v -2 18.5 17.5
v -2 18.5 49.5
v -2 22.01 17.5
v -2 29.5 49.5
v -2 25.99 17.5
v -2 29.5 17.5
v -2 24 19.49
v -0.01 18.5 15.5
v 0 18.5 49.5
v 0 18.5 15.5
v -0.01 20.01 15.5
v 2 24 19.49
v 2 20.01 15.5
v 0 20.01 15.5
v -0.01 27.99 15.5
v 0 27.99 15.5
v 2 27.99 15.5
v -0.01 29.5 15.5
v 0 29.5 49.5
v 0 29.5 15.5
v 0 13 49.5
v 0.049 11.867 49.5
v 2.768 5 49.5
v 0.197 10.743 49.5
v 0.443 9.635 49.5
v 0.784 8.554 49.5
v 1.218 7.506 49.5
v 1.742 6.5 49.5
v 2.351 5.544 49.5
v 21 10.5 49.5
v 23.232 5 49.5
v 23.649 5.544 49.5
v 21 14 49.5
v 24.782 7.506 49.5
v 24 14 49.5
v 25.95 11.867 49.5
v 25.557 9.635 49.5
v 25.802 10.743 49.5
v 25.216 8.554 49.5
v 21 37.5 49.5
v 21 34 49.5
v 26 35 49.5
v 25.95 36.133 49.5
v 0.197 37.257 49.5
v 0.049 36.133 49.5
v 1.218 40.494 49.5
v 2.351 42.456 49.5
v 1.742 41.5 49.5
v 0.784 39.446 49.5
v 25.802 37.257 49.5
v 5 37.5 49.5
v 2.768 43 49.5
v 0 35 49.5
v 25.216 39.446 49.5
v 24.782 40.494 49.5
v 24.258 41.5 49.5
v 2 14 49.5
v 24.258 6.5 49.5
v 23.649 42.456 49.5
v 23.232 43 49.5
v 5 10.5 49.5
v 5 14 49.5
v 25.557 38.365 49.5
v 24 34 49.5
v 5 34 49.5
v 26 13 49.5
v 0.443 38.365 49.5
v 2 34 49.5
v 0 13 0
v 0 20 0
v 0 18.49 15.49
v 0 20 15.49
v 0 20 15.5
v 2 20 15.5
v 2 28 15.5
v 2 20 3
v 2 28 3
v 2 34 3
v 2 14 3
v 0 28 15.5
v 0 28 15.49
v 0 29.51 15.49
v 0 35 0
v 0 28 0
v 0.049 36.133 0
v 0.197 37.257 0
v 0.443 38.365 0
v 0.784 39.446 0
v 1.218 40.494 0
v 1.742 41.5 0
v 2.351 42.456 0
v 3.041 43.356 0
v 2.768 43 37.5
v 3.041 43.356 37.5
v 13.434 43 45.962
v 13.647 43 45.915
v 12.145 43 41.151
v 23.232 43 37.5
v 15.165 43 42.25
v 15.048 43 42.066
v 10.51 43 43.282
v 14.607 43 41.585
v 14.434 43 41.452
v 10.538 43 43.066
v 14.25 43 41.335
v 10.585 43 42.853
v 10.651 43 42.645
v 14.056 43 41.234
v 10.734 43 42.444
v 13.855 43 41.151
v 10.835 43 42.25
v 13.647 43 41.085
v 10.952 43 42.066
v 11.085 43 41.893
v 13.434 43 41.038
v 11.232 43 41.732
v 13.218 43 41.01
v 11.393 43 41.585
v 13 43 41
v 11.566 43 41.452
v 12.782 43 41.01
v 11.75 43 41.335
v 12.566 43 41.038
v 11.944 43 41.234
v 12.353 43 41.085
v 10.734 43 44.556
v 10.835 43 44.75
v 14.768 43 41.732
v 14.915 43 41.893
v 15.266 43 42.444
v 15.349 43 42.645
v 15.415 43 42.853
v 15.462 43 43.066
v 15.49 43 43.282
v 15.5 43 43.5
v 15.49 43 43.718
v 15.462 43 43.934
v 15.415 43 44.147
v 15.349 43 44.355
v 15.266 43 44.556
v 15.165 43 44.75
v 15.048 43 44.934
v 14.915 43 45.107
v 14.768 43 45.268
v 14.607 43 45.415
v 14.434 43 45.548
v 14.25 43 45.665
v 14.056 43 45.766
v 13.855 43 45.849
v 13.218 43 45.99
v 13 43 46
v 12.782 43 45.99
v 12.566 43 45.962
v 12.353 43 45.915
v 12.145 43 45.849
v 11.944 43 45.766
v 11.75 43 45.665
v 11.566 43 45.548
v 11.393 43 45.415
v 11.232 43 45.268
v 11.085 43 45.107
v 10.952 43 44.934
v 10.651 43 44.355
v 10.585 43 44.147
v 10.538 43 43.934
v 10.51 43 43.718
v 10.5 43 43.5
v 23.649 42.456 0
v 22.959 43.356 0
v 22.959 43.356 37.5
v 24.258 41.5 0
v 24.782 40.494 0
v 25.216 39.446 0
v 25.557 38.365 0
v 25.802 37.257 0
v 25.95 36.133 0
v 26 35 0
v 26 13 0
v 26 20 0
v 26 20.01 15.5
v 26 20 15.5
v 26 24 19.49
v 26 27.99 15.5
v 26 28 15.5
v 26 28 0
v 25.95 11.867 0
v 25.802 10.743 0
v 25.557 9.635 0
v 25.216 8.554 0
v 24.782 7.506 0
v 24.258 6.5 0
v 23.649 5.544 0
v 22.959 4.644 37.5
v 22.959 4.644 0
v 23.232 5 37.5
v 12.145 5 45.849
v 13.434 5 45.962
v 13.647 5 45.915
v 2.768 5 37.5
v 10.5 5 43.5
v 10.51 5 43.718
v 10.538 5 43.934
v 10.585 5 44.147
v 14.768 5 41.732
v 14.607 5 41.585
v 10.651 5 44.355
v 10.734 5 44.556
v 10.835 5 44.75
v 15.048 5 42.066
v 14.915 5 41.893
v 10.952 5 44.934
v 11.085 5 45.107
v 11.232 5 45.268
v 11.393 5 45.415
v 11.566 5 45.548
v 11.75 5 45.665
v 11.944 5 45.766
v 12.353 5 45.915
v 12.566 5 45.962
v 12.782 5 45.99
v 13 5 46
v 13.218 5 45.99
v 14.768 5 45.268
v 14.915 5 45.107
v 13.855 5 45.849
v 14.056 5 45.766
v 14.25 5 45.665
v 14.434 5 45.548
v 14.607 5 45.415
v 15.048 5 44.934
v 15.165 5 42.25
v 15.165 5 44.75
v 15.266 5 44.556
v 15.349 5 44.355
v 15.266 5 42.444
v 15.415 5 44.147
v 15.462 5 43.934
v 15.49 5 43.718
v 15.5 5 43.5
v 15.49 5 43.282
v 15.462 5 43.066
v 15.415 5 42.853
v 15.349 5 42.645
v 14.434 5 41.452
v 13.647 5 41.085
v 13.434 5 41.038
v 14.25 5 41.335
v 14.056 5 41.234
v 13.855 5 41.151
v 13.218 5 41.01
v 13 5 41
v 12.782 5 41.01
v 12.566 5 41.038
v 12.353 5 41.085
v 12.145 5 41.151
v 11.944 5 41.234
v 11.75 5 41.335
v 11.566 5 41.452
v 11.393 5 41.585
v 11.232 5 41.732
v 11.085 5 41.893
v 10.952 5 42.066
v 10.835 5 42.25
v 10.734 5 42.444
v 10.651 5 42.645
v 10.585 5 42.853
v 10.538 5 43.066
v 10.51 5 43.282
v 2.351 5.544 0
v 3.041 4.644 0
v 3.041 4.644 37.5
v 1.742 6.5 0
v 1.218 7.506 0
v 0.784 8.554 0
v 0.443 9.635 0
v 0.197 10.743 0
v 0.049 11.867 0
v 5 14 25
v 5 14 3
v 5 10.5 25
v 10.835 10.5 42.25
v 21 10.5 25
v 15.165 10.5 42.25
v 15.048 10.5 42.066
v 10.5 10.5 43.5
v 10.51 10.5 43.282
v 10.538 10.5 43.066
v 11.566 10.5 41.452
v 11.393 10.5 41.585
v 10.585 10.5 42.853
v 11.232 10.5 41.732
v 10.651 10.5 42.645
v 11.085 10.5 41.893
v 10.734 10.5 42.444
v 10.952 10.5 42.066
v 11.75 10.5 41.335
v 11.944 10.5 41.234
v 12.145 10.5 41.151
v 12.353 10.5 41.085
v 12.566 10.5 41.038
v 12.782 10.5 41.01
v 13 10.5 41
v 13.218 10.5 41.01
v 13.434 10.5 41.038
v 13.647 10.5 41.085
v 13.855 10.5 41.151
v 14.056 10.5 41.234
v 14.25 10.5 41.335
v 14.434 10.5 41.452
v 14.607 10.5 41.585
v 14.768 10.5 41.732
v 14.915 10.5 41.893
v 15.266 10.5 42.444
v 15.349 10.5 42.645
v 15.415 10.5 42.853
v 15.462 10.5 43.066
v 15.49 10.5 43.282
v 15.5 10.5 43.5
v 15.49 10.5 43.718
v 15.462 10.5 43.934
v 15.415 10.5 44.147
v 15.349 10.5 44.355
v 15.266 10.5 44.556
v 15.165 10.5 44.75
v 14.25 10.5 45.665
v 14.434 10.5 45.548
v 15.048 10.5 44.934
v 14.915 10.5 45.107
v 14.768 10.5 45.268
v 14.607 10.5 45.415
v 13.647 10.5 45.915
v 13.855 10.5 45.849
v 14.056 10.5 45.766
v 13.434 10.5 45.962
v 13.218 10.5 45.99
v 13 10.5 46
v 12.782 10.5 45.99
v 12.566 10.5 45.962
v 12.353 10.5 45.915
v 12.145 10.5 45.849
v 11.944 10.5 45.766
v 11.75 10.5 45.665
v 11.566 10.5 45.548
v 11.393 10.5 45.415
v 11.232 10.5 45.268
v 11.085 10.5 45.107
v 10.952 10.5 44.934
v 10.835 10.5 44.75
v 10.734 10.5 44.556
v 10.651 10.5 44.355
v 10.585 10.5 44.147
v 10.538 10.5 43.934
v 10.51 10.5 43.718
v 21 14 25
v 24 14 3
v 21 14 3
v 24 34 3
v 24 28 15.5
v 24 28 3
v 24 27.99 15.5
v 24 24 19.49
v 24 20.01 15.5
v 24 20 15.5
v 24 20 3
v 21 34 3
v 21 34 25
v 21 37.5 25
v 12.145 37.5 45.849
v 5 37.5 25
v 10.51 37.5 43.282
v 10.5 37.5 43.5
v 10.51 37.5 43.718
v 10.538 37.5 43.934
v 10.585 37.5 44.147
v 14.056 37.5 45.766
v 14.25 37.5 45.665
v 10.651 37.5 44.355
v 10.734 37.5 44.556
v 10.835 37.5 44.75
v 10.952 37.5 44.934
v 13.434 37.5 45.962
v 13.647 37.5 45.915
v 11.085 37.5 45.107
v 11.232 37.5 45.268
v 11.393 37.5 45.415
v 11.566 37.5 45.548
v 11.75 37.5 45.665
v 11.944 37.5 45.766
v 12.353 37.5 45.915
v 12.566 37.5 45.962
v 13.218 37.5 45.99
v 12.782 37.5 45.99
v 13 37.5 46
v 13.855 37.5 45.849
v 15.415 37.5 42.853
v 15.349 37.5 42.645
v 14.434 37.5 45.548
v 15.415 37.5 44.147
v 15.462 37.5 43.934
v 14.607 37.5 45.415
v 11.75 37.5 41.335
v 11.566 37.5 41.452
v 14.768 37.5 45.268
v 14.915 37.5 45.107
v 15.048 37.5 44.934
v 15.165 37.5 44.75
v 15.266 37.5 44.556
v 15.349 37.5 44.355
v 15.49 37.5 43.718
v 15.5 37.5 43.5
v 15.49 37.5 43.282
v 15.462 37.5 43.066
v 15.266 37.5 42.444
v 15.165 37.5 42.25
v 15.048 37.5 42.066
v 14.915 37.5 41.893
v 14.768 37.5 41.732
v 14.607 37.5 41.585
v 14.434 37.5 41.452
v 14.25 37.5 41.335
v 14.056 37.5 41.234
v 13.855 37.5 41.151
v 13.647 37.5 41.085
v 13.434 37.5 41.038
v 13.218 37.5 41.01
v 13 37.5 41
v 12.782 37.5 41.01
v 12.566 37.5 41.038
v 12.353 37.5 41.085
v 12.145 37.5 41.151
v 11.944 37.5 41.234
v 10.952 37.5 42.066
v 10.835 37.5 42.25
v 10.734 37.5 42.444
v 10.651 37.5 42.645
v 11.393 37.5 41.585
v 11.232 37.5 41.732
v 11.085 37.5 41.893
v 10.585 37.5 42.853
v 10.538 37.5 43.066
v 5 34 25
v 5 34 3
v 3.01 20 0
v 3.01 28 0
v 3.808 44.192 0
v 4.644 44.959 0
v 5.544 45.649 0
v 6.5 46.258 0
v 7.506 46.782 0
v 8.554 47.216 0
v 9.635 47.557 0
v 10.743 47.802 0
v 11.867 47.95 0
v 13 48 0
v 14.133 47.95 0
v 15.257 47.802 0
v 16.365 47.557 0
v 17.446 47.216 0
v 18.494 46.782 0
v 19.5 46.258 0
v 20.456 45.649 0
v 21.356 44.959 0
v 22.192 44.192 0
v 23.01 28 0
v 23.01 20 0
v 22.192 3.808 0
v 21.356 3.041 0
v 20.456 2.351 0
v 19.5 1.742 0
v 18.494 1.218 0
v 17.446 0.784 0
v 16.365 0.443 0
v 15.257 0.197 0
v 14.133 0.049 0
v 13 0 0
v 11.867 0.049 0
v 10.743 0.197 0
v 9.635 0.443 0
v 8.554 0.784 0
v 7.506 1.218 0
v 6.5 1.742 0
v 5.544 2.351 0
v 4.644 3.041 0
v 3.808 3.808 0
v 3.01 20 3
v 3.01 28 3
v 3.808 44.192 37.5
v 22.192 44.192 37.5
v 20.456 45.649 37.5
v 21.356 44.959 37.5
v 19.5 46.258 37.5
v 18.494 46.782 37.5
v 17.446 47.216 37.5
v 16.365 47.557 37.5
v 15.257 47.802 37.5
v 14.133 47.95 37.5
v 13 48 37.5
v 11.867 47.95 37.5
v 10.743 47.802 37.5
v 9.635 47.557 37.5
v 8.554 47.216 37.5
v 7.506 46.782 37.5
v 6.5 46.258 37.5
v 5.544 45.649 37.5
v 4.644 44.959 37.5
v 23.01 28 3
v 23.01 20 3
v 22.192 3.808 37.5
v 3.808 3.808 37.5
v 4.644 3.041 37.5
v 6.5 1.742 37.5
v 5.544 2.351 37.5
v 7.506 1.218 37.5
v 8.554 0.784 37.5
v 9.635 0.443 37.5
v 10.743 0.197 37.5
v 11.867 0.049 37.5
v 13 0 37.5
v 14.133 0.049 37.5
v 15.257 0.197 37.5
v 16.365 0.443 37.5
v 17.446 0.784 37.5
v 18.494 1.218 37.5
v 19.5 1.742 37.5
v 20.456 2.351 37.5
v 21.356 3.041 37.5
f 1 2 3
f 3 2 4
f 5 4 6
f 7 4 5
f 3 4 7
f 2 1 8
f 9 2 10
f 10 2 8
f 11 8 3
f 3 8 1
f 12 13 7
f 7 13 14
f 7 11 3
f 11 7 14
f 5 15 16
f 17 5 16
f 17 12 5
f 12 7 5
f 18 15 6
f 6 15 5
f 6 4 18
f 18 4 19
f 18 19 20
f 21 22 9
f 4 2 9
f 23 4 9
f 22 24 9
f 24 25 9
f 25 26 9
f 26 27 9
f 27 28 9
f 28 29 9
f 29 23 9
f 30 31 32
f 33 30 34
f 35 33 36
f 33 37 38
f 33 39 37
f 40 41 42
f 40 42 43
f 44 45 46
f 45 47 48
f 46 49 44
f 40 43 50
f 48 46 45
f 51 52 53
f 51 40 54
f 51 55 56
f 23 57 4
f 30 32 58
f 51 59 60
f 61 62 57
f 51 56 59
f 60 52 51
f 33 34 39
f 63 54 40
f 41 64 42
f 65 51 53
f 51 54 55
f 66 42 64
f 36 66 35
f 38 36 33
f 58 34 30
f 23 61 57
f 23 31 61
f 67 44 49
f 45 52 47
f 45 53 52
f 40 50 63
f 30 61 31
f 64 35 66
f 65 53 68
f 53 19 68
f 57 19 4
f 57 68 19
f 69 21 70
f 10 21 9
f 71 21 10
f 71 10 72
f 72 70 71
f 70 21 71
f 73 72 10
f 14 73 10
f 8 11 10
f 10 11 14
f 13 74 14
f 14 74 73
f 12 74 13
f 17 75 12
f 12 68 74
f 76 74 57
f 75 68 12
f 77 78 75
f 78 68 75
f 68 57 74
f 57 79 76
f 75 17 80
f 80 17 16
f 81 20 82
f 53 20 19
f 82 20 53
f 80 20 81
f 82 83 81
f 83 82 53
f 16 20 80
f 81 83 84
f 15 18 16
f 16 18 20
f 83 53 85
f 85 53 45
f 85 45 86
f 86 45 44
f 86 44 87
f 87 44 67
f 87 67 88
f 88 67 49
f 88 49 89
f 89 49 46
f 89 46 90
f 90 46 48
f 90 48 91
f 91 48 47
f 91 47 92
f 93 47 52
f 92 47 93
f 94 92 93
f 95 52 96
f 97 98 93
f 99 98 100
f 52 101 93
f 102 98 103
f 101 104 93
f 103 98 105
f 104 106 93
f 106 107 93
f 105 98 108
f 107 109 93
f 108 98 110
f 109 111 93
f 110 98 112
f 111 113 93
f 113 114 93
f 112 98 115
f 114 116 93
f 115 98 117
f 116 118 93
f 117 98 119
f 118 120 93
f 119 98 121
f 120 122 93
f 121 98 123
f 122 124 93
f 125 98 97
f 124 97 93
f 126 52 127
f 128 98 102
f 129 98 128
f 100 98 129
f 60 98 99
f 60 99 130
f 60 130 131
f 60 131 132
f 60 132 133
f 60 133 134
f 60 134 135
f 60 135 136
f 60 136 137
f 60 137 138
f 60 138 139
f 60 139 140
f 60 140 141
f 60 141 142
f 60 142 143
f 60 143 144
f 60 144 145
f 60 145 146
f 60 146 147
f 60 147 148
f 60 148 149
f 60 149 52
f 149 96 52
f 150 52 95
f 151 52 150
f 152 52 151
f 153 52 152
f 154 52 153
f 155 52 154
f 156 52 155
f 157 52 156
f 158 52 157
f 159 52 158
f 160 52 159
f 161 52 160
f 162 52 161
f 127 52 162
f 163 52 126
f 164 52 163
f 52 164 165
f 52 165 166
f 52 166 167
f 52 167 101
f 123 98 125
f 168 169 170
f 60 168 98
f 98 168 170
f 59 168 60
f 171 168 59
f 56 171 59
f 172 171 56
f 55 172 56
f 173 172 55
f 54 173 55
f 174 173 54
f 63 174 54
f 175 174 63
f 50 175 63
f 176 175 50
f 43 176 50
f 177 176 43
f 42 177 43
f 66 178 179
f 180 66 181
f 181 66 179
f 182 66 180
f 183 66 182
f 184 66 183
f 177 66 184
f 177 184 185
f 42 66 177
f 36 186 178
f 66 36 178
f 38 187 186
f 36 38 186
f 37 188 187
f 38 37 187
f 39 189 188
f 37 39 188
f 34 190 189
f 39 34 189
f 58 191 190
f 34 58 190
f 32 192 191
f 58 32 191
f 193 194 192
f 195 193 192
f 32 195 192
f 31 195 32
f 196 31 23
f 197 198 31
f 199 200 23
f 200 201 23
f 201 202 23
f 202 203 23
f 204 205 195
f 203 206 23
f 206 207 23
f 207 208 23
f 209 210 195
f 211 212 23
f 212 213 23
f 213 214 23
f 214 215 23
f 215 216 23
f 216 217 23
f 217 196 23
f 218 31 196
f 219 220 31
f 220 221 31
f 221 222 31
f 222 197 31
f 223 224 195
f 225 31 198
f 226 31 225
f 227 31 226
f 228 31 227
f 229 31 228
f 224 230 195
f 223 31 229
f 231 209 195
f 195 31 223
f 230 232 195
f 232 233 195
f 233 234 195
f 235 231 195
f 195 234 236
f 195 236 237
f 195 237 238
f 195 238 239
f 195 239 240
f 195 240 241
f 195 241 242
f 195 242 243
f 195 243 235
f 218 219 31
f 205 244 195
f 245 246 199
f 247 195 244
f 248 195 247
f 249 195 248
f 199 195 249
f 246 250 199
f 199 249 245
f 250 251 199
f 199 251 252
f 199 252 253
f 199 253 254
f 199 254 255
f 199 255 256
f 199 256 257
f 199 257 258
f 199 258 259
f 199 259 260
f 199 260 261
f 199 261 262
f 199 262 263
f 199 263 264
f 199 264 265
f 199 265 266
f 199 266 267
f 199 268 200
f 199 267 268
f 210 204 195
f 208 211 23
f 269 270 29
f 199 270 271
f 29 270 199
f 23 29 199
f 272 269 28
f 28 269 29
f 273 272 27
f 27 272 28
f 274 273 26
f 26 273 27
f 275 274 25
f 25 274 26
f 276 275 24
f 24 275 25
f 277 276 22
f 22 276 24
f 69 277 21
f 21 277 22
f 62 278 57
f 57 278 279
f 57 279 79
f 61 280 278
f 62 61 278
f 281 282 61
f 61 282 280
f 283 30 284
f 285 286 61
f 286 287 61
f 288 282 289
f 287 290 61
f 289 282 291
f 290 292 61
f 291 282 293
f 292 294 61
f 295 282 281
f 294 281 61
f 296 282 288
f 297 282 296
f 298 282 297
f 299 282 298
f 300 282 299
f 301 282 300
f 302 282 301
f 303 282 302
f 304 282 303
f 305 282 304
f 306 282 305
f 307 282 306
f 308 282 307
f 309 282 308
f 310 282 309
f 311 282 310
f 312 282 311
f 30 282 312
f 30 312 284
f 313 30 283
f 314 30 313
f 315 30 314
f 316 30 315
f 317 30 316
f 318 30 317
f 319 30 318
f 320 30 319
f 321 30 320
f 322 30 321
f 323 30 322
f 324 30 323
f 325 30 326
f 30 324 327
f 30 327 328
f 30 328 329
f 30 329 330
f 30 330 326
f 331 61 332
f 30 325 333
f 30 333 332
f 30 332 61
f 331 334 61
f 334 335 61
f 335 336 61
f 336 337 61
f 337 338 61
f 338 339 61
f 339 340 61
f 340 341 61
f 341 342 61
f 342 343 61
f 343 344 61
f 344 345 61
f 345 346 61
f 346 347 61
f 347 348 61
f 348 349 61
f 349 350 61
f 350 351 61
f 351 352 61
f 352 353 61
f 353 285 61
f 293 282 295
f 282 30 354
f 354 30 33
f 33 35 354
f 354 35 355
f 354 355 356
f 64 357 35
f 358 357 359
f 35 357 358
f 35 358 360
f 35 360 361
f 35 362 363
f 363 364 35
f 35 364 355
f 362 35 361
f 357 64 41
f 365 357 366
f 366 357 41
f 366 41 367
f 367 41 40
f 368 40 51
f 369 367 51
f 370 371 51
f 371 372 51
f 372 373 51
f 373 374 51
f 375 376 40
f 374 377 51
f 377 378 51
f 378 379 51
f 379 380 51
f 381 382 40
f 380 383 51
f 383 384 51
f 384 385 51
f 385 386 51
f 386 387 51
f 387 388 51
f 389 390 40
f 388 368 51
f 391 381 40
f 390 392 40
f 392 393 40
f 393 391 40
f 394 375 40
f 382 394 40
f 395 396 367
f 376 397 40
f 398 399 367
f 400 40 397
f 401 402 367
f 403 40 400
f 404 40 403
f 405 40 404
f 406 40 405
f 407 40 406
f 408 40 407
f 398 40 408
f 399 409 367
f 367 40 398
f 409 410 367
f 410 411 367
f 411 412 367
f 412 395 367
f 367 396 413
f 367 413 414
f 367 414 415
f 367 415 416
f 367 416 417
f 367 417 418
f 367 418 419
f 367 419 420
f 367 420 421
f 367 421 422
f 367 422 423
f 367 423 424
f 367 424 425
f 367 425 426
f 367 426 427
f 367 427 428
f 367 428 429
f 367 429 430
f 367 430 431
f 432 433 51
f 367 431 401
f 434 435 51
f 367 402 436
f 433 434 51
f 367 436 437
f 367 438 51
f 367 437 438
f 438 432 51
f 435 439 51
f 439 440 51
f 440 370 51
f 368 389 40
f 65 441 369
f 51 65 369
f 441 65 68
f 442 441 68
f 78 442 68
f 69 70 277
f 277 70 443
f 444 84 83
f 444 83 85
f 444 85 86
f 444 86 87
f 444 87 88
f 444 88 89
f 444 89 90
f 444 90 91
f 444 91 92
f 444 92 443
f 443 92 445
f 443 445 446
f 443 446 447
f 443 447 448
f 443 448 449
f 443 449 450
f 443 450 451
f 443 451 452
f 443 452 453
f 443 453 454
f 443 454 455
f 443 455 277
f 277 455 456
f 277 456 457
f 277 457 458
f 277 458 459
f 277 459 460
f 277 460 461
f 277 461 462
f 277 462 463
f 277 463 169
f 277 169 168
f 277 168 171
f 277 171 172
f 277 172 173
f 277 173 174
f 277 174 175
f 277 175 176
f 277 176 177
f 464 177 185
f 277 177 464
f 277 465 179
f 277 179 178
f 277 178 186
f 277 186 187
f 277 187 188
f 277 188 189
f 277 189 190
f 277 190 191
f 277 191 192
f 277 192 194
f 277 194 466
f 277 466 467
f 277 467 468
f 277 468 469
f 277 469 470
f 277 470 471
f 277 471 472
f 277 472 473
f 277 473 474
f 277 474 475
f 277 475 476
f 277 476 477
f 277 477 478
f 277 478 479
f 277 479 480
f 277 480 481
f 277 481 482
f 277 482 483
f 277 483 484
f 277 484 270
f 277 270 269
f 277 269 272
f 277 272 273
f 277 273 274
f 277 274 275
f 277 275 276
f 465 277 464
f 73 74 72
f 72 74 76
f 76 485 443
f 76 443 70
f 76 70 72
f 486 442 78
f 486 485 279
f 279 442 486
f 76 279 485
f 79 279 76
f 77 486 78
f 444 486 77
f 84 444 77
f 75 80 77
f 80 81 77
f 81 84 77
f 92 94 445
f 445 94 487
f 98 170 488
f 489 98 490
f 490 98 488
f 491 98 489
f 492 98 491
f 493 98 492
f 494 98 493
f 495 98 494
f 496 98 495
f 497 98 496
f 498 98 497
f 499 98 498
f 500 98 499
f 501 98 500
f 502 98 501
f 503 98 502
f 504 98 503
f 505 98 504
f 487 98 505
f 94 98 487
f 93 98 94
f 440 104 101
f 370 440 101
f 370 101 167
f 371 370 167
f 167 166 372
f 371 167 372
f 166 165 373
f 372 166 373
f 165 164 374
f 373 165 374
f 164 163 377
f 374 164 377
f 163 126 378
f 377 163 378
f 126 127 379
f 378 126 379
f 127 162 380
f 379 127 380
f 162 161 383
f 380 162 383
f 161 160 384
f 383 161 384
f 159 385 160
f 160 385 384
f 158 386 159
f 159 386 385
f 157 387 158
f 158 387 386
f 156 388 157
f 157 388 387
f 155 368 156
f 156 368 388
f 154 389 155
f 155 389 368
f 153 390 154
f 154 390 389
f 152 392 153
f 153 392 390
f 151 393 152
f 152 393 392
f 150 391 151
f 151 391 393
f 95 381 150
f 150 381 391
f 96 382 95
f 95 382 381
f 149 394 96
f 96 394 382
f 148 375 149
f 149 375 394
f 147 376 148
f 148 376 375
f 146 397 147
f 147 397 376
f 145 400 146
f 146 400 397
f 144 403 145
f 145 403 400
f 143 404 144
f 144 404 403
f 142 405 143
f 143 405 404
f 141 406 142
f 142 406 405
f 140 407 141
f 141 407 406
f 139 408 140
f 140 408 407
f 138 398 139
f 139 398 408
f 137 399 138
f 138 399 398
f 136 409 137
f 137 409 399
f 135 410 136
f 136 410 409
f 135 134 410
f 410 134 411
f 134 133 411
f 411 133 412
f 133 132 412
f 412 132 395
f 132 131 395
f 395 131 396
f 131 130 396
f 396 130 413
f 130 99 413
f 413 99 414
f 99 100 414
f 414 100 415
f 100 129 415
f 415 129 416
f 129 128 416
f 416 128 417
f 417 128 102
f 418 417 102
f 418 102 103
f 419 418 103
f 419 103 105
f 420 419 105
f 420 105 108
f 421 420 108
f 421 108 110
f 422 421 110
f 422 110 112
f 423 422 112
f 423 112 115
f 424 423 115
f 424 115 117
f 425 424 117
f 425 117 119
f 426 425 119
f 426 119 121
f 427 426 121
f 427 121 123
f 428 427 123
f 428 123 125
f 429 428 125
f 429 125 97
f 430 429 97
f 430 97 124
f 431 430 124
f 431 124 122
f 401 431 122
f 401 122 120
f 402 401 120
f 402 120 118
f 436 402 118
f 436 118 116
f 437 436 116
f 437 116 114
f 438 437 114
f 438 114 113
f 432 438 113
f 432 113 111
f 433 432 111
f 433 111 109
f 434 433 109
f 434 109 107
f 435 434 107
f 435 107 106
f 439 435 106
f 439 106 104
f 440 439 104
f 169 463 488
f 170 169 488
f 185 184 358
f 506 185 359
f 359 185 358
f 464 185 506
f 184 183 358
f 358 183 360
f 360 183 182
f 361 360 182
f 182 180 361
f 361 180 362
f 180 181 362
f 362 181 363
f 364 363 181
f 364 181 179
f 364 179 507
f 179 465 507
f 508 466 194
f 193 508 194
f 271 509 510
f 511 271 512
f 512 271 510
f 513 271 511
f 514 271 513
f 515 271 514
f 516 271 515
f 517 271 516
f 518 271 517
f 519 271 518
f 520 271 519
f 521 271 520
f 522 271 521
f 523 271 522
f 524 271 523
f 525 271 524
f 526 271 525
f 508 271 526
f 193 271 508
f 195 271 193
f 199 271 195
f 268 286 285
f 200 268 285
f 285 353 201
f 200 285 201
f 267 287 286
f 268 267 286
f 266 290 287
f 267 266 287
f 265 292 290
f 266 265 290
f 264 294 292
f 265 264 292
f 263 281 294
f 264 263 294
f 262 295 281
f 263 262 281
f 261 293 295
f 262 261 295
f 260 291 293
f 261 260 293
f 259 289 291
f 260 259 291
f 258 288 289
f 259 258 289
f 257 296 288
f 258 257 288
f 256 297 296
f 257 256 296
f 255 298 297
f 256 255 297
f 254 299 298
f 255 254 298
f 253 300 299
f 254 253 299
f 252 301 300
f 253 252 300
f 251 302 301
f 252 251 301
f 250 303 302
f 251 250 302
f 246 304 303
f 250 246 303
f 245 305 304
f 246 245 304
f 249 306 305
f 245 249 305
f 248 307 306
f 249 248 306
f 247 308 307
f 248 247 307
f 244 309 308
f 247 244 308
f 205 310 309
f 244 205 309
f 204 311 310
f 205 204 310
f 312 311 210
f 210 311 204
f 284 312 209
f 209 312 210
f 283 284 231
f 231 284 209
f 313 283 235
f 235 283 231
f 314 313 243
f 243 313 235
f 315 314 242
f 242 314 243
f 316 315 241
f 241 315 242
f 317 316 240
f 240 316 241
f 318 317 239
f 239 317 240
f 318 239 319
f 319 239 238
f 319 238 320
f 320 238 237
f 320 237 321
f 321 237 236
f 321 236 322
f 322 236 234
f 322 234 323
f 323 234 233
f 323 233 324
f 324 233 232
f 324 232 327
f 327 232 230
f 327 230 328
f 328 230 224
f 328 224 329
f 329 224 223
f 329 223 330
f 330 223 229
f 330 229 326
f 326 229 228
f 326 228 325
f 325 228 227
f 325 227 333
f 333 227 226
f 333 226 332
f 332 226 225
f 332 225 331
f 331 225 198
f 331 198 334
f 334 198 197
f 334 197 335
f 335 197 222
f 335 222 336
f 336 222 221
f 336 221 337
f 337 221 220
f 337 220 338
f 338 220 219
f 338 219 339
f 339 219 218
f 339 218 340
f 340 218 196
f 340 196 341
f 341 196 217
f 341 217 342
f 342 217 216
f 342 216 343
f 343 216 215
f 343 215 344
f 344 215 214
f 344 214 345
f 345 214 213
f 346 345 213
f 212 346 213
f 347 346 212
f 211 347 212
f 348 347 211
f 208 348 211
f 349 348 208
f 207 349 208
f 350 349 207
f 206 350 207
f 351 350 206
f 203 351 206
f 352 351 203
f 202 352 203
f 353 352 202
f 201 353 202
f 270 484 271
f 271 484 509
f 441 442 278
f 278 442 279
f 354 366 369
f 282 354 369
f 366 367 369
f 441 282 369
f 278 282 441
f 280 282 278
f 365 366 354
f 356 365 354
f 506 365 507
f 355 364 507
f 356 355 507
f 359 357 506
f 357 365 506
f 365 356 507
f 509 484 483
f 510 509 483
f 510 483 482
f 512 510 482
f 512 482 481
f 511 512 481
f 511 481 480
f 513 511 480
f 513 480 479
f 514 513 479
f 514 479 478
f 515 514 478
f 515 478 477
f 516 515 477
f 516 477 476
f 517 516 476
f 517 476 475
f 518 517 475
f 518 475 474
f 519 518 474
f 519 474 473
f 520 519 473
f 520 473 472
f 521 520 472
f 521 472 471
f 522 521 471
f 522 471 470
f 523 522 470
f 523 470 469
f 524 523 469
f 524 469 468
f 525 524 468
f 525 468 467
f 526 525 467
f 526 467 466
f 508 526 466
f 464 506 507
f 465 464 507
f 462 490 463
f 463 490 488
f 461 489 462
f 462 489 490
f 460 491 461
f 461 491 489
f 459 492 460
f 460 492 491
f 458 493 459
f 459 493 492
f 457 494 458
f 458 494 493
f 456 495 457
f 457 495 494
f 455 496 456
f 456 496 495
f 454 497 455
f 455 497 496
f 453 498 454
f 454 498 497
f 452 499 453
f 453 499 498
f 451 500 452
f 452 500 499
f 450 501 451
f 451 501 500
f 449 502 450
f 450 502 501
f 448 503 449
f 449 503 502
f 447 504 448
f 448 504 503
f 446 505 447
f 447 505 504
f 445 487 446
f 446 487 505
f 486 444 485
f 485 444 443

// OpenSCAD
$fn=72;
mu=0.01;

module base_shaft()
{
	translate([13,13,0])
	{
		union()
		{
			//most basic form
			hull()
			{
				translate([0,22,0]) cylinder(49.5,13,13);
				cylinder(49.5,13,13);
			}
			
			//guide
			translate([-15,5.5,15.5]) cube([2,11,34]);
		}
	}
}

module connector_cutouts()
{
	translate([0-mu,20,-mu]) cube([3+2*mu,8,15.5+mu]);
	translate([23+mu,20,-mu]) cube([3+2*mu,8,15.5+mu]);
}

module connector_slots()
{
	translate([2,14,3]) cube([3,20,50]);
	translate([21,14,3]) cube([3,20,50]);
}

module guide_cutouts()
{
	union()
	{
		translate([-2,18.5-mu,15.5])
			rotate([-90,0,0])
				linear_extrude(height=11+2*mu) polygon([[0,0+mu],[2,0+mu],[0,-2]]);
		
		translate([2.5,20,15.5-mu])
			rotate([0,-90,0])
				linear_extrude(height=5) polygon([[0,0],[0,8],[4,4]]);
	}
	translate([28.5,20,15.5-mu])
		rotate([0,-90,0])
			linear_extrude(height=5) polygon([[0,0],[0,8],[4,4]]);	
}

module main_cavity()
{
	translate([3,16.5,25]) cube([20,15,40]);
	translate([5,10.5,25]) cube([16,27,40]);
}

module base_lock_planes()
{
	translate([0,0,37.5]) cube([26,5,13]);
	translate([0,43,37.5]) cube([26,5,13]);
}

module base_lock_hole()
{
	translate([13,0,43.5]) rotate([-90,0,0]) cylinder(48,2.5,2.5);
}

module debug_intersection_1()
{
	translate([13,-1,-1]) cube([100,100,100]);
}

module debug_intersection_2()
{
	translate([-5,-1,-1]) cube([50,26,100]);
}

module debug_connector_bolt()
{
	translate([2,20.5,40]) cube([8,7,7]);
	translate([16,20.5,40]) cube([8,7,7]);
}

module complete_part()
{
	union()
	{
		difference()
		{
			base_shaft();
			connector_cutouts();
			connector_slots();
			guide_cutouts();
			main_cavity();
			base_lock_planes();
			base_lock_hole();
			//debug_intersection_1();
			//debug_intersection_2();
		}
		//debug_connector_bolt();
	}
}

complete_part();
